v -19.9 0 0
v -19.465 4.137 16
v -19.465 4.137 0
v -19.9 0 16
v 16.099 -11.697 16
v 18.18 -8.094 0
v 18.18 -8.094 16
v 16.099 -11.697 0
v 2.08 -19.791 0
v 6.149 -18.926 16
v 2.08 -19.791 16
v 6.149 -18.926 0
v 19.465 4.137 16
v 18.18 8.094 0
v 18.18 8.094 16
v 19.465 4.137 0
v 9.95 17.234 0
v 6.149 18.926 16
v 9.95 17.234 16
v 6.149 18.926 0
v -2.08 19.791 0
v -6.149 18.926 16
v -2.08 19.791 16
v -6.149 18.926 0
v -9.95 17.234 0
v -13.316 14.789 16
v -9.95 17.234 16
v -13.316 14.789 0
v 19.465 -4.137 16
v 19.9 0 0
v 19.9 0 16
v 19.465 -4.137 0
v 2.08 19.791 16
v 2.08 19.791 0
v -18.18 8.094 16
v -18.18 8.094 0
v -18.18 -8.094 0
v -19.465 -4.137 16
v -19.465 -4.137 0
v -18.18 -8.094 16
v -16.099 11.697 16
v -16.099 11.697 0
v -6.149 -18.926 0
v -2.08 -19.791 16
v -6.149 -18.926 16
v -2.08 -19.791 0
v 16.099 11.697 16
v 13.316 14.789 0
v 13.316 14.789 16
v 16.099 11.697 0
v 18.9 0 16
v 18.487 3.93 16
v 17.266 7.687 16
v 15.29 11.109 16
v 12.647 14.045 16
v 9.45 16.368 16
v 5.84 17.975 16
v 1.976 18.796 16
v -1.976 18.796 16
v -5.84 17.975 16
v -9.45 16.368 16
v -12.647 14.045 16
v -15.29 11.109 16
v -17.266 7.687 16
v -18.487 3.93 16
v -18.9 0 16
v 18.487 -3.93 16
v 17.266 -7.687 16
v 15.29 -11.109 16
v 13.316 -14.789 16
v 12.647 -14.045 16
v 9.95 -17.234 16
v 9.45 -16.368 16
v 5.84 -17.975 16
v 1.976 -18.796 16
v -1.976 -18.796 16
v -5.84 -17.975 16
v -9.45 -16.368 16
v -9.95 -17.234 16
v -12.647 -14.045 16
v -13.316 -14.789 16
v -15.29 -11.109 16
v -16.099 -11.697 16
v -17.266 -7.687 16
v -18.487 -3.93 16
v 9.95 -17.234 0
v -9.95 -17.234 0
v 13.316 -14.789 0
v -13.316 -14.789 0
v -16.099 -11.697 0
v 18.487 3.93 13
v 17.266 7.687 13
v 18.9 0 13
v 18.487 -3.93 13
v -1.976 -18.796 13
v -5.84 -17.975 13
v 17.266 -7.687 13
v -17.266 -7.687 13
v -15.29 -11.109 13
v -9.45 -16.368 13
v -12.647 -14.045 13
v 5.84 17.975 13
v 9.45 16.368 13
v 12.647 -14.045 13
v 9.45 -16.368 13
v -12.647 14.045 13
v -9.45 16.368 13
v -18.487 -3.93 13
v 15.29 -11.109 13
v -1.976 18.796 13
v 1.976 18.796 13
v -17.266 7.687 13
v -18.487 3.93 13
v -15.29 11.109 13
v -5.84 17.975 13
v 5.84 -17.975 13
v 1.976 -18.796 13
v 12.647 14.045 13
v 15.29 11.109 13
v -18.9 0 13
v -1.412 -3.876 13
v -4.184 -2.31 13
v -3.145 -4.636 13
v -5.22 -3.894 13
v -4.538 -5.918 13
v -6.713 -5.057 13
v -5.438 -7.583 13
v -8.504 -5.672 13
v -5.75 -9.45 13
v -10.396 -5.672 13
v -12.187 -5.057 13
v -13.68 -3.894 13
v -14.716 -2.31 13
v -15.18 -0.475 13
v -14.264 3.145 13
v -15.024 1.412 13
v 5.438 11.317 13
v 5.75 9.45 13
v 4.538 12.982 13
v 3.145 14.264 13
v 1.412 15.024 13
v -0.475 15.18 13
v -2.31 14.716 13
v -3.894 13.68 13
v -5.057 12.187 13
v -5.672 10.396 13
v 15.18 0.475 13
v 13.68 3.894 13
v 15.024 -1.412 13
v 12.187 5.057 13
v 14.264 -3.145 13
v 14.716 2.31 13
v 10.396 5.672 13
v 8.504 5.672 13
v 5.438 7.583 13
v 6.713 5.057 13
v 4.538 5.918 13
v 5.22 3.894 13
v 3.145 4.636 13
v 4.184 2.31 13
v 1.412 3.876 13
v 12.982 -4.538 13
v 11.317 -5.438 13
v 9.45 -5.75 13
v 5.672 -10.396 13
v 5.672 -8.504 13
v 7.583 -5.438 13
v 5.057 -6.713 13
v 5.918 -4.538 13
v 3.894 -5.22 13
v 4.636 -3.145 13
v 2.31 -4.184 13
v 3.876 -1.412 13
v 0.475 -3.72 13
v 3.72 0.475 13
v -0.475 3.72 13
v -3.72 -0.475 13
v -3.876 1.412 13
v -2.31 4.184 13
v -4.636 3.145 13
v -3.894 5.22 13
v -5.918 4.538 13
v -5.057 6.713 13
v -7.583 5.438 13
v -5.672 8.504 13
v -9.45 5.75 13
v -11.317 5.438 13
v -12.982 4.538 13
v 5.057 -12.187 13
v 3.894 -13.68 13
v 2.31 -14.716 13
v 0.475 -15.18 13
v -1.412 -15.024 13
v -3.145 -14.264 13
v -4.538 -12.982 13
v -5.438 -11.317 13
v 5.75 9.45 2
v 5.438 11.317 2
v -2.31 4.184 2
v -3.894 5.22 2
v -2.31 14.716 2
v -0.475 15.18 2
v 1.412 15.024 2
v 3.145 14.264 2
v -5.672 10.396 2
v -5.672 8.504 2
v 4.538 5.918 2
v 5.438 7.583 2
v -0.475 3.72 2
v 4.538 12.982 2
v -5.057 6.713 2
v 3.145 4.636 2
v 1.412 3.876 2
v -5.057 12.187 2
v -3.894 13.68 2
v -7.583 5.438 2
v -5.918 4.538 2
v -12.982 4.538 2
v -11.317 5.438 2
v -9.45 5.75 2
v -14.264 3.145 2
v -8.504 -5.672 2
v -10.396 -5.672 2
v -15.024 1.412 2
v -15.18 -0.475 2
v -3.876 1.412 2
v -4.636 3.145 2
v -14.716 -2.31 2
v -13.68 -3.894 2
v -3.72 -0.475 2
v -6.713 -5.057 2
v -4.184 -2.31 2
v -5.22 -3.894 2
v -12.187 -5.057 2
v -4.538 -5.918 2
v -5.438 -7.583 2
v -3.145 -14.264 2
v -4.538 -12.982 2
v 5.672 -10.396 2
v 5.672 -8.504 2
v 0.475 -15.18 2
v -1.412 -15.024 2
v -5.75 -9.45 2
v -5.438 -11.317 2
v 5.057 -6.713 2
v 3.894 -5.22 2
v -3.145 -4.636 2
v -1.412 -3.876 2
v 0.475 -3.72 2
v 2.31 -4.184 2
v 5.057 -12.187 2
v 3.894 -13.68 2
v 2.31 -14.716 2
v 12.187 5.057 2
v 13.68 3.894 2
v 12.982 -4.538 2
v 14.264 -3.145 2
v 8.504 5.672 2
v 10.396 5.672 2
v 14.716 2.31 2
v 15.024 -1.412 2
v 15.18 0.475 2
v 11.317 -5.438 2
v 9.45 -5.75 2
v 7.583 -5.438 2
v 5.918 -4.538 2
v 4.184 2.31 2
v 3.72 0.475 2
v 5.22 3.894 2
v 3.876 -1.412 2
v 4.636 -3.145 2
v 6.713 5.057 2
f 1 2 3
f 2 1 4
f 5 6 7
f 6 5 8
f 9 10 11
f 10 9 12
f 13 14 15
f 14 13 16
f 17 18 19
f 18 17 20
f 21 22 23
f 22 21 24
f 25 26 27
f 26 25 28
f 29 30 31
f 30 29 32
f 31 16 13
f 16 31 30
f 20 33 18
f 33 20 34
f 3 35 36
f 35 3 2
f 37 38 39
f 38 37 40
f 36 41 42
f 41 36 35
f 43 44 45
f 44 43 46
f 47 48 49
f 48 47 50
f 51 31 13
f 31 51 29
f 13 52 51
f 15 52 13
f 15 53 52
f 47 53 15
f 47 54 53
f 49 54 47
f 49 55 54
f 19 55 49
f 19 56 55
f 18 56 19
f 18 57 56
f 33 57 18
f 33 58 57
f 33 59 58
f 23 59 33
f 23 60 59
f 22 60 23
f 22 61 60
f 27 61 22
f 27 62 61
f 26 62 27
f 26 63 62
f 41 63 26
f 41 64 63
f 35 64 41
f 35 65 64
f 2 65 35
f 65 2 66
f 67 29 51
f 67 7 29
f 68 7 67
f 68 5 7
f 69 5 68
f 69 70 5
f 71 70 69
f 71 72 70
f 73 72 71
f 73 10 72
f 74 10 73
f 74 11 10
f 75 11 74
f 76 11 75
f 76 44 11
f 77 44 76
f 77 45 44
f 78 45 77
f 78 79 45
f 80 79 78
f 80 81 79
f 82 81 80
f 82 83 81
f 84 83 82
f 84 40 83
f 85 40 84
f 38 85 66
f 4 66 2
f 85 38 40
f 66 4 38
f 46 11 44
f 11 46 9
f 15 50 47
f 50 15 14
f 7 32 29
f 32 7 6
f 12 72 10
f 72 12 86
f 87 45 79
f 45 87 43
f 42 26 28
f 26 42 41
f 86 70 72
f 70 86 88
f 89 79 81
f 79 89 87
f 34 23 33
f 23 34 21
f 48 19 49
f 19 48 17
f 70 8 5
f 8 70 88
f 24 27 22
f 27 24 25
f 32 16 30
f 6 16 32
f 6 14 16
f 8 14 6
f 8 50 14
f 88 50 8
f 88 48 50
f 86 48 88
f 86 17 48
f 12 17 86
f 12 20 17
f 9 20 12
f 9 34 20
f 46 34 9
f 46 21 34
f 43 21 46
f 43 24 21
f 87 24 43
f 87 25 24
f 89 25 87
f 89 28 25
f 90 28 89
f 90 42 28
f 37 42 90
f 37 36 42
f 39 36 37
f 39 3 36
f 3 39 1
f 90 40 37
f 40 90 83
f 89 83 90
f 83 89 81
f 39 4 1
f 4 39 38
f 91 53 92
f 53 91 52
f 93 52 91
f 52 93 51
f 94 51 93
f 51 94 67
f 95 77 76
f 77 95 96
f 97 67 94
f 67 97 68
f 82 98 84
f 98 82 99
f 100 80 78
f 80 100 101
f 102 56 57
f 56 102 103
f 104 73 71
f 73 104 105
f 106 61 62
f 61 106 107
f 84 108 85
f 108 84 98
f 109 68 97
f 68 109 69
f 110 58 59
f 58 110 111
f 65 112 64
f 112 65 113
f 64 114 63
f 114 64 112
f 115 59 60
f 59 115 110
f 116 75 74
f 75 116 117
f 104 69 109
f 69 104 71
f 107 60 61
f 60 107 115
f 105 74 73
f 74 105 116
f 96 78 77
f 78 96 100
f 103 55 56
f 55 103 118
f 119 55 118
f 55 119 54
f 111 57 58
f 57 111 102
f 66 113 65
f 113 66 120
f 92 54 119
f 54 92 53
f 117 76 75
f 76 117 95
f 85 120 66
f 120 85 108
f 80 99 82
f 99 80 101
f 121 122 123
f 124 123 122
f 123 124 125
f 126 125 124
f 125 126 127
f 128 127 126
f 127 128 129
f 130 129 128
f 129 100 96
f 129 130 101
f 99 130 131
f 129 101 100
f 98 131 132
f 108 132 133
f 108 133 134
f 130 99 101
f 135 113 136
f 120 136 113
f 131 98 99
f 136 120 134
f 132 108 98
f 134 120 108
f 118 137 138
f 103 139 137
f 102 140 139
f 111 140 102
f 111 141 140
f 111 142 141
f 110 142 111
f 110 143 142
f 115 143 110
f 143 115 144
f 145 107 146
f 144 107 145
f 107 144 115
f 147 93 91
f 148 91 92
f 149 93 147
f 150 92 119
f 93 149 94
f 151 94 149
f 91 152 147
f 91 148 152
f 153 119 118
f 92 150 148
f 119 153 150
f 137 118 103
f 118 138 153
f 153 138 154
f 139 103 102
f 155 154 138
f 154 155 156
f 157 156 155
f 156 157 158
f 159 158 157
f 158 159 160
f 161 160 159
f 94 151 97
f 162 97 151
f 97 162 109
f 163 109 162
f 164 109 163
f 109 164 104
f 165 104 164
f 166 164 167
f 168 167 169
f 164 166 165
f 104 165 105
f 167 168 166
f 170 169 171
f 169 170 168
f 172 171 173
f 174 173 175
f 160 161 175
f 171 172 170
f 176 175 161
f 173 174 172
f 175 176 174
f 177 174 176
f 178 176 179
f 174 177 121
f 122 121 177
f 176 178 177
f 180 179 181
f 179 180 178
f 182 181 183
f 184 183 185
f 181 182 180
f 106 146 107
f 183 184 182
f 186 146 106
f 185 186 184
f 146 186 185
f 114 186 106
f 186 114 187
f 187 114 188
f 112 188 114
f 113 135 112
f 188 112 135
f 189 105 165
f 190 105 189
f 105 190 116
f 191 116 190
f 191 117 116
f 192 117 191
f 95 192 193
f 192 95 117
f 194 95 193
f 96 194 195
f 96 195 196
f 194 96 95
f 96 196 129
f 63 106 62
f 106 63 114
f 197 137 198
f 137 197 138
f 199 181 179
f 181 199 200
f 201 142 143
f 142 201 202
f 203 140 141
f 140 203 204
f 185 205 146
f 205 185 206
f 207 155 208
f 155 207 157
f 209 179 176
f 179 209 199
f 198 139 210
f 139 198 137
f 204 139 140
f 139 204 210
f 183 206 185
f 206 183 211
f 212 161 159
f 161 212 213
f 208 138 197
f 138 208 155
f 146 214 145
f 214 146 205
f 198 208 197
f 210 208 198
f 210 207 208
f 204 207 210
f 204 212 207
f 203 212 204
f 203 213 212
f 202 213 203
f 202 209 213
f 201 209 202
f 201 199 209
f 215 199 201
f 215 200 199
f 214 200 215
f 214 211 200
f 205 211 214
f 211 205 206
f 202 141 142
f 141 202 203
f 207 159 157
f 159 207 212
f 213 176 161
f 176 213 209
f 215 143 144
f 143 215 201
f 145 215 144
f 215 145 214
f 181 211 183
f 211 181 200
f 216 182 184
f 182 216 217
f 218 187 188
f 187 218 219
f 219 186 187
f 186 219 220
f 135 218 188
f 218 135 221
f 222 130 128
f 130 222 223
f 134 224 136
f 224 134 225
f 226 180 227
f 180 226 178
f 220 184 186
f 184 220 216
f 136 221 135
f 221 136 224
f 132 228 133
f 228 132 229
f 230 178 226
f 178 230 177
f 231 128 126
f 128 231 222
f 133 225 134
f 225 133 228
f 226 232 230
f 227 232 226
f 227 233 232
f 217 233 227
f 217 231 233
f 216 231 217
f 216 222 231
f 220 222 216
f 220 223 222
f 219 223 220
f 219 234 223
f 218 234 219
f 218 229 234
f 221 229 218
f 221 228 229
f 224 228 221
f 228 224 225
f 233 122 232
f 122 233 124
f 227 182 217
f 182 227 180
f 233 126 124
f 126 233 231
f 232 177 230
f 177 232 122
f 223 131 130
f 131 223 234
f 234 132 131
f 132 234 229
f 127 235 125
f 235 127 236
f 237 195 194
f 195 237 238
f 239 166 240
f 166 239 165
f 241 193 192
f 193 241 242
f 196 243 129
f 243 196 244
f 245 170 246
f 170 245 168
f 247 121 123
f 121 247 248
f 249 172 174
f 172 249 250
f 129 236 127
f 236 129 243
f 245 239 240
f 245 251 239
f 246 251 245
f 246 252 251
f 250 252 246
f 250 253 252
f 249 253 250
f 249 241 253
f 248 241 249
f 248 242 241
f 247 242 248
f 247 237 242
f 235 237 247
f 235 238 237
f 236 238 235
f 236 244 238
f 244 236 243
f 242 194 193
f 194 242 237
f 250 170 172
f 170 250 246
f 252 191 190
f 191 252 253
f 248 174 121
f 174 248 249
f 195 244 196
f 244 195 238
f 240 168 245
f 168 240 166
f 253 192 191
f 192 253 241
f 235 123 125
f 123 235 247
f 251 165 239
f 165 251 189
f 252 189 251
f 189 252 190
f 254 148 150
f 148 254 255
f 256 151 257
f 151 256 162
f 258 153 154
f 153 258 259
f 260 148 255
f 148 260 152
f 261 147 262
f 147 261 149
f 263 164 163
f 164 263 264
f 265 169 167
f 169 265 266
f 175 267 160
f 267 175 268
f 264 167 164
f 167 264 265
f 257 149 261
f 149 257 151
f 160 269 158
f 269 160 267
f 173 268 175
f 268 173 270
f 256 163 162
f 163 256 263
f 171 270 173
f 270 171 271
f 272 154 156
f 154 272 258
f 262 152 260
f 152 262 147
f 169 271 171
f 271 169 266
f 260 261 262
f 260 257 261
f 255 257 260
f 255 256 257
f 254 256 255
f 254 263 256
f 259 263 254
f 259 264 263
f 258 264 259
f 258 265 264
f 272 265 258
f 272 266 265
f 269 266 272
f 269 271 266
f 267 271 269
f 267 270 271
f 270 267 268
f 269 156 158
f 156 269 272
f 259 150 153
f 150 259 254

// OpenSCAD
/*
 capsule size:
   height: 9mm without cap, 11mm with (+.1mm)
   diameter: 10.5mm
*/
CAP_EMPTY_HEIGHT = 9;
CAP_FULL_HEIGHT = 11;
CAP_DIAMETER = 10.5;

module capsule() {
    tolerance = 0.5;
    cylinder(h=CAP_FULL_HEIGHT, r=CAP_DIAMETER/2+tolerance);
}

module cylinder_with_lip(h, r, lip_h, lip_r) {
    difference() {
        cylinder(h=h+lip_h, r=r+lip_r);
        translate([0, 0, h]) {
            cylinder(h=lip_h, r=r);
        }
    }
}

module tray() {
    radius = CAP_DIAMETER * 1.8;
    bottom_thickness = 2;
    capsules = 4;
    lip_height = 3;
    height = CAP_FULL_HEIGHT + bottom_thickness;
    
    difference() {
        cylinder_with_lip(r=radius, h=height, lip_h=lip_height, lip_r=1);
  
        for(deg = [0 : 360 / capsules : 360]) {
            rotate(deg, [0, 0, 1])
            translate([0, radius/2, bottom_thickness])
            capsule();
        }
    }
}

tray();
